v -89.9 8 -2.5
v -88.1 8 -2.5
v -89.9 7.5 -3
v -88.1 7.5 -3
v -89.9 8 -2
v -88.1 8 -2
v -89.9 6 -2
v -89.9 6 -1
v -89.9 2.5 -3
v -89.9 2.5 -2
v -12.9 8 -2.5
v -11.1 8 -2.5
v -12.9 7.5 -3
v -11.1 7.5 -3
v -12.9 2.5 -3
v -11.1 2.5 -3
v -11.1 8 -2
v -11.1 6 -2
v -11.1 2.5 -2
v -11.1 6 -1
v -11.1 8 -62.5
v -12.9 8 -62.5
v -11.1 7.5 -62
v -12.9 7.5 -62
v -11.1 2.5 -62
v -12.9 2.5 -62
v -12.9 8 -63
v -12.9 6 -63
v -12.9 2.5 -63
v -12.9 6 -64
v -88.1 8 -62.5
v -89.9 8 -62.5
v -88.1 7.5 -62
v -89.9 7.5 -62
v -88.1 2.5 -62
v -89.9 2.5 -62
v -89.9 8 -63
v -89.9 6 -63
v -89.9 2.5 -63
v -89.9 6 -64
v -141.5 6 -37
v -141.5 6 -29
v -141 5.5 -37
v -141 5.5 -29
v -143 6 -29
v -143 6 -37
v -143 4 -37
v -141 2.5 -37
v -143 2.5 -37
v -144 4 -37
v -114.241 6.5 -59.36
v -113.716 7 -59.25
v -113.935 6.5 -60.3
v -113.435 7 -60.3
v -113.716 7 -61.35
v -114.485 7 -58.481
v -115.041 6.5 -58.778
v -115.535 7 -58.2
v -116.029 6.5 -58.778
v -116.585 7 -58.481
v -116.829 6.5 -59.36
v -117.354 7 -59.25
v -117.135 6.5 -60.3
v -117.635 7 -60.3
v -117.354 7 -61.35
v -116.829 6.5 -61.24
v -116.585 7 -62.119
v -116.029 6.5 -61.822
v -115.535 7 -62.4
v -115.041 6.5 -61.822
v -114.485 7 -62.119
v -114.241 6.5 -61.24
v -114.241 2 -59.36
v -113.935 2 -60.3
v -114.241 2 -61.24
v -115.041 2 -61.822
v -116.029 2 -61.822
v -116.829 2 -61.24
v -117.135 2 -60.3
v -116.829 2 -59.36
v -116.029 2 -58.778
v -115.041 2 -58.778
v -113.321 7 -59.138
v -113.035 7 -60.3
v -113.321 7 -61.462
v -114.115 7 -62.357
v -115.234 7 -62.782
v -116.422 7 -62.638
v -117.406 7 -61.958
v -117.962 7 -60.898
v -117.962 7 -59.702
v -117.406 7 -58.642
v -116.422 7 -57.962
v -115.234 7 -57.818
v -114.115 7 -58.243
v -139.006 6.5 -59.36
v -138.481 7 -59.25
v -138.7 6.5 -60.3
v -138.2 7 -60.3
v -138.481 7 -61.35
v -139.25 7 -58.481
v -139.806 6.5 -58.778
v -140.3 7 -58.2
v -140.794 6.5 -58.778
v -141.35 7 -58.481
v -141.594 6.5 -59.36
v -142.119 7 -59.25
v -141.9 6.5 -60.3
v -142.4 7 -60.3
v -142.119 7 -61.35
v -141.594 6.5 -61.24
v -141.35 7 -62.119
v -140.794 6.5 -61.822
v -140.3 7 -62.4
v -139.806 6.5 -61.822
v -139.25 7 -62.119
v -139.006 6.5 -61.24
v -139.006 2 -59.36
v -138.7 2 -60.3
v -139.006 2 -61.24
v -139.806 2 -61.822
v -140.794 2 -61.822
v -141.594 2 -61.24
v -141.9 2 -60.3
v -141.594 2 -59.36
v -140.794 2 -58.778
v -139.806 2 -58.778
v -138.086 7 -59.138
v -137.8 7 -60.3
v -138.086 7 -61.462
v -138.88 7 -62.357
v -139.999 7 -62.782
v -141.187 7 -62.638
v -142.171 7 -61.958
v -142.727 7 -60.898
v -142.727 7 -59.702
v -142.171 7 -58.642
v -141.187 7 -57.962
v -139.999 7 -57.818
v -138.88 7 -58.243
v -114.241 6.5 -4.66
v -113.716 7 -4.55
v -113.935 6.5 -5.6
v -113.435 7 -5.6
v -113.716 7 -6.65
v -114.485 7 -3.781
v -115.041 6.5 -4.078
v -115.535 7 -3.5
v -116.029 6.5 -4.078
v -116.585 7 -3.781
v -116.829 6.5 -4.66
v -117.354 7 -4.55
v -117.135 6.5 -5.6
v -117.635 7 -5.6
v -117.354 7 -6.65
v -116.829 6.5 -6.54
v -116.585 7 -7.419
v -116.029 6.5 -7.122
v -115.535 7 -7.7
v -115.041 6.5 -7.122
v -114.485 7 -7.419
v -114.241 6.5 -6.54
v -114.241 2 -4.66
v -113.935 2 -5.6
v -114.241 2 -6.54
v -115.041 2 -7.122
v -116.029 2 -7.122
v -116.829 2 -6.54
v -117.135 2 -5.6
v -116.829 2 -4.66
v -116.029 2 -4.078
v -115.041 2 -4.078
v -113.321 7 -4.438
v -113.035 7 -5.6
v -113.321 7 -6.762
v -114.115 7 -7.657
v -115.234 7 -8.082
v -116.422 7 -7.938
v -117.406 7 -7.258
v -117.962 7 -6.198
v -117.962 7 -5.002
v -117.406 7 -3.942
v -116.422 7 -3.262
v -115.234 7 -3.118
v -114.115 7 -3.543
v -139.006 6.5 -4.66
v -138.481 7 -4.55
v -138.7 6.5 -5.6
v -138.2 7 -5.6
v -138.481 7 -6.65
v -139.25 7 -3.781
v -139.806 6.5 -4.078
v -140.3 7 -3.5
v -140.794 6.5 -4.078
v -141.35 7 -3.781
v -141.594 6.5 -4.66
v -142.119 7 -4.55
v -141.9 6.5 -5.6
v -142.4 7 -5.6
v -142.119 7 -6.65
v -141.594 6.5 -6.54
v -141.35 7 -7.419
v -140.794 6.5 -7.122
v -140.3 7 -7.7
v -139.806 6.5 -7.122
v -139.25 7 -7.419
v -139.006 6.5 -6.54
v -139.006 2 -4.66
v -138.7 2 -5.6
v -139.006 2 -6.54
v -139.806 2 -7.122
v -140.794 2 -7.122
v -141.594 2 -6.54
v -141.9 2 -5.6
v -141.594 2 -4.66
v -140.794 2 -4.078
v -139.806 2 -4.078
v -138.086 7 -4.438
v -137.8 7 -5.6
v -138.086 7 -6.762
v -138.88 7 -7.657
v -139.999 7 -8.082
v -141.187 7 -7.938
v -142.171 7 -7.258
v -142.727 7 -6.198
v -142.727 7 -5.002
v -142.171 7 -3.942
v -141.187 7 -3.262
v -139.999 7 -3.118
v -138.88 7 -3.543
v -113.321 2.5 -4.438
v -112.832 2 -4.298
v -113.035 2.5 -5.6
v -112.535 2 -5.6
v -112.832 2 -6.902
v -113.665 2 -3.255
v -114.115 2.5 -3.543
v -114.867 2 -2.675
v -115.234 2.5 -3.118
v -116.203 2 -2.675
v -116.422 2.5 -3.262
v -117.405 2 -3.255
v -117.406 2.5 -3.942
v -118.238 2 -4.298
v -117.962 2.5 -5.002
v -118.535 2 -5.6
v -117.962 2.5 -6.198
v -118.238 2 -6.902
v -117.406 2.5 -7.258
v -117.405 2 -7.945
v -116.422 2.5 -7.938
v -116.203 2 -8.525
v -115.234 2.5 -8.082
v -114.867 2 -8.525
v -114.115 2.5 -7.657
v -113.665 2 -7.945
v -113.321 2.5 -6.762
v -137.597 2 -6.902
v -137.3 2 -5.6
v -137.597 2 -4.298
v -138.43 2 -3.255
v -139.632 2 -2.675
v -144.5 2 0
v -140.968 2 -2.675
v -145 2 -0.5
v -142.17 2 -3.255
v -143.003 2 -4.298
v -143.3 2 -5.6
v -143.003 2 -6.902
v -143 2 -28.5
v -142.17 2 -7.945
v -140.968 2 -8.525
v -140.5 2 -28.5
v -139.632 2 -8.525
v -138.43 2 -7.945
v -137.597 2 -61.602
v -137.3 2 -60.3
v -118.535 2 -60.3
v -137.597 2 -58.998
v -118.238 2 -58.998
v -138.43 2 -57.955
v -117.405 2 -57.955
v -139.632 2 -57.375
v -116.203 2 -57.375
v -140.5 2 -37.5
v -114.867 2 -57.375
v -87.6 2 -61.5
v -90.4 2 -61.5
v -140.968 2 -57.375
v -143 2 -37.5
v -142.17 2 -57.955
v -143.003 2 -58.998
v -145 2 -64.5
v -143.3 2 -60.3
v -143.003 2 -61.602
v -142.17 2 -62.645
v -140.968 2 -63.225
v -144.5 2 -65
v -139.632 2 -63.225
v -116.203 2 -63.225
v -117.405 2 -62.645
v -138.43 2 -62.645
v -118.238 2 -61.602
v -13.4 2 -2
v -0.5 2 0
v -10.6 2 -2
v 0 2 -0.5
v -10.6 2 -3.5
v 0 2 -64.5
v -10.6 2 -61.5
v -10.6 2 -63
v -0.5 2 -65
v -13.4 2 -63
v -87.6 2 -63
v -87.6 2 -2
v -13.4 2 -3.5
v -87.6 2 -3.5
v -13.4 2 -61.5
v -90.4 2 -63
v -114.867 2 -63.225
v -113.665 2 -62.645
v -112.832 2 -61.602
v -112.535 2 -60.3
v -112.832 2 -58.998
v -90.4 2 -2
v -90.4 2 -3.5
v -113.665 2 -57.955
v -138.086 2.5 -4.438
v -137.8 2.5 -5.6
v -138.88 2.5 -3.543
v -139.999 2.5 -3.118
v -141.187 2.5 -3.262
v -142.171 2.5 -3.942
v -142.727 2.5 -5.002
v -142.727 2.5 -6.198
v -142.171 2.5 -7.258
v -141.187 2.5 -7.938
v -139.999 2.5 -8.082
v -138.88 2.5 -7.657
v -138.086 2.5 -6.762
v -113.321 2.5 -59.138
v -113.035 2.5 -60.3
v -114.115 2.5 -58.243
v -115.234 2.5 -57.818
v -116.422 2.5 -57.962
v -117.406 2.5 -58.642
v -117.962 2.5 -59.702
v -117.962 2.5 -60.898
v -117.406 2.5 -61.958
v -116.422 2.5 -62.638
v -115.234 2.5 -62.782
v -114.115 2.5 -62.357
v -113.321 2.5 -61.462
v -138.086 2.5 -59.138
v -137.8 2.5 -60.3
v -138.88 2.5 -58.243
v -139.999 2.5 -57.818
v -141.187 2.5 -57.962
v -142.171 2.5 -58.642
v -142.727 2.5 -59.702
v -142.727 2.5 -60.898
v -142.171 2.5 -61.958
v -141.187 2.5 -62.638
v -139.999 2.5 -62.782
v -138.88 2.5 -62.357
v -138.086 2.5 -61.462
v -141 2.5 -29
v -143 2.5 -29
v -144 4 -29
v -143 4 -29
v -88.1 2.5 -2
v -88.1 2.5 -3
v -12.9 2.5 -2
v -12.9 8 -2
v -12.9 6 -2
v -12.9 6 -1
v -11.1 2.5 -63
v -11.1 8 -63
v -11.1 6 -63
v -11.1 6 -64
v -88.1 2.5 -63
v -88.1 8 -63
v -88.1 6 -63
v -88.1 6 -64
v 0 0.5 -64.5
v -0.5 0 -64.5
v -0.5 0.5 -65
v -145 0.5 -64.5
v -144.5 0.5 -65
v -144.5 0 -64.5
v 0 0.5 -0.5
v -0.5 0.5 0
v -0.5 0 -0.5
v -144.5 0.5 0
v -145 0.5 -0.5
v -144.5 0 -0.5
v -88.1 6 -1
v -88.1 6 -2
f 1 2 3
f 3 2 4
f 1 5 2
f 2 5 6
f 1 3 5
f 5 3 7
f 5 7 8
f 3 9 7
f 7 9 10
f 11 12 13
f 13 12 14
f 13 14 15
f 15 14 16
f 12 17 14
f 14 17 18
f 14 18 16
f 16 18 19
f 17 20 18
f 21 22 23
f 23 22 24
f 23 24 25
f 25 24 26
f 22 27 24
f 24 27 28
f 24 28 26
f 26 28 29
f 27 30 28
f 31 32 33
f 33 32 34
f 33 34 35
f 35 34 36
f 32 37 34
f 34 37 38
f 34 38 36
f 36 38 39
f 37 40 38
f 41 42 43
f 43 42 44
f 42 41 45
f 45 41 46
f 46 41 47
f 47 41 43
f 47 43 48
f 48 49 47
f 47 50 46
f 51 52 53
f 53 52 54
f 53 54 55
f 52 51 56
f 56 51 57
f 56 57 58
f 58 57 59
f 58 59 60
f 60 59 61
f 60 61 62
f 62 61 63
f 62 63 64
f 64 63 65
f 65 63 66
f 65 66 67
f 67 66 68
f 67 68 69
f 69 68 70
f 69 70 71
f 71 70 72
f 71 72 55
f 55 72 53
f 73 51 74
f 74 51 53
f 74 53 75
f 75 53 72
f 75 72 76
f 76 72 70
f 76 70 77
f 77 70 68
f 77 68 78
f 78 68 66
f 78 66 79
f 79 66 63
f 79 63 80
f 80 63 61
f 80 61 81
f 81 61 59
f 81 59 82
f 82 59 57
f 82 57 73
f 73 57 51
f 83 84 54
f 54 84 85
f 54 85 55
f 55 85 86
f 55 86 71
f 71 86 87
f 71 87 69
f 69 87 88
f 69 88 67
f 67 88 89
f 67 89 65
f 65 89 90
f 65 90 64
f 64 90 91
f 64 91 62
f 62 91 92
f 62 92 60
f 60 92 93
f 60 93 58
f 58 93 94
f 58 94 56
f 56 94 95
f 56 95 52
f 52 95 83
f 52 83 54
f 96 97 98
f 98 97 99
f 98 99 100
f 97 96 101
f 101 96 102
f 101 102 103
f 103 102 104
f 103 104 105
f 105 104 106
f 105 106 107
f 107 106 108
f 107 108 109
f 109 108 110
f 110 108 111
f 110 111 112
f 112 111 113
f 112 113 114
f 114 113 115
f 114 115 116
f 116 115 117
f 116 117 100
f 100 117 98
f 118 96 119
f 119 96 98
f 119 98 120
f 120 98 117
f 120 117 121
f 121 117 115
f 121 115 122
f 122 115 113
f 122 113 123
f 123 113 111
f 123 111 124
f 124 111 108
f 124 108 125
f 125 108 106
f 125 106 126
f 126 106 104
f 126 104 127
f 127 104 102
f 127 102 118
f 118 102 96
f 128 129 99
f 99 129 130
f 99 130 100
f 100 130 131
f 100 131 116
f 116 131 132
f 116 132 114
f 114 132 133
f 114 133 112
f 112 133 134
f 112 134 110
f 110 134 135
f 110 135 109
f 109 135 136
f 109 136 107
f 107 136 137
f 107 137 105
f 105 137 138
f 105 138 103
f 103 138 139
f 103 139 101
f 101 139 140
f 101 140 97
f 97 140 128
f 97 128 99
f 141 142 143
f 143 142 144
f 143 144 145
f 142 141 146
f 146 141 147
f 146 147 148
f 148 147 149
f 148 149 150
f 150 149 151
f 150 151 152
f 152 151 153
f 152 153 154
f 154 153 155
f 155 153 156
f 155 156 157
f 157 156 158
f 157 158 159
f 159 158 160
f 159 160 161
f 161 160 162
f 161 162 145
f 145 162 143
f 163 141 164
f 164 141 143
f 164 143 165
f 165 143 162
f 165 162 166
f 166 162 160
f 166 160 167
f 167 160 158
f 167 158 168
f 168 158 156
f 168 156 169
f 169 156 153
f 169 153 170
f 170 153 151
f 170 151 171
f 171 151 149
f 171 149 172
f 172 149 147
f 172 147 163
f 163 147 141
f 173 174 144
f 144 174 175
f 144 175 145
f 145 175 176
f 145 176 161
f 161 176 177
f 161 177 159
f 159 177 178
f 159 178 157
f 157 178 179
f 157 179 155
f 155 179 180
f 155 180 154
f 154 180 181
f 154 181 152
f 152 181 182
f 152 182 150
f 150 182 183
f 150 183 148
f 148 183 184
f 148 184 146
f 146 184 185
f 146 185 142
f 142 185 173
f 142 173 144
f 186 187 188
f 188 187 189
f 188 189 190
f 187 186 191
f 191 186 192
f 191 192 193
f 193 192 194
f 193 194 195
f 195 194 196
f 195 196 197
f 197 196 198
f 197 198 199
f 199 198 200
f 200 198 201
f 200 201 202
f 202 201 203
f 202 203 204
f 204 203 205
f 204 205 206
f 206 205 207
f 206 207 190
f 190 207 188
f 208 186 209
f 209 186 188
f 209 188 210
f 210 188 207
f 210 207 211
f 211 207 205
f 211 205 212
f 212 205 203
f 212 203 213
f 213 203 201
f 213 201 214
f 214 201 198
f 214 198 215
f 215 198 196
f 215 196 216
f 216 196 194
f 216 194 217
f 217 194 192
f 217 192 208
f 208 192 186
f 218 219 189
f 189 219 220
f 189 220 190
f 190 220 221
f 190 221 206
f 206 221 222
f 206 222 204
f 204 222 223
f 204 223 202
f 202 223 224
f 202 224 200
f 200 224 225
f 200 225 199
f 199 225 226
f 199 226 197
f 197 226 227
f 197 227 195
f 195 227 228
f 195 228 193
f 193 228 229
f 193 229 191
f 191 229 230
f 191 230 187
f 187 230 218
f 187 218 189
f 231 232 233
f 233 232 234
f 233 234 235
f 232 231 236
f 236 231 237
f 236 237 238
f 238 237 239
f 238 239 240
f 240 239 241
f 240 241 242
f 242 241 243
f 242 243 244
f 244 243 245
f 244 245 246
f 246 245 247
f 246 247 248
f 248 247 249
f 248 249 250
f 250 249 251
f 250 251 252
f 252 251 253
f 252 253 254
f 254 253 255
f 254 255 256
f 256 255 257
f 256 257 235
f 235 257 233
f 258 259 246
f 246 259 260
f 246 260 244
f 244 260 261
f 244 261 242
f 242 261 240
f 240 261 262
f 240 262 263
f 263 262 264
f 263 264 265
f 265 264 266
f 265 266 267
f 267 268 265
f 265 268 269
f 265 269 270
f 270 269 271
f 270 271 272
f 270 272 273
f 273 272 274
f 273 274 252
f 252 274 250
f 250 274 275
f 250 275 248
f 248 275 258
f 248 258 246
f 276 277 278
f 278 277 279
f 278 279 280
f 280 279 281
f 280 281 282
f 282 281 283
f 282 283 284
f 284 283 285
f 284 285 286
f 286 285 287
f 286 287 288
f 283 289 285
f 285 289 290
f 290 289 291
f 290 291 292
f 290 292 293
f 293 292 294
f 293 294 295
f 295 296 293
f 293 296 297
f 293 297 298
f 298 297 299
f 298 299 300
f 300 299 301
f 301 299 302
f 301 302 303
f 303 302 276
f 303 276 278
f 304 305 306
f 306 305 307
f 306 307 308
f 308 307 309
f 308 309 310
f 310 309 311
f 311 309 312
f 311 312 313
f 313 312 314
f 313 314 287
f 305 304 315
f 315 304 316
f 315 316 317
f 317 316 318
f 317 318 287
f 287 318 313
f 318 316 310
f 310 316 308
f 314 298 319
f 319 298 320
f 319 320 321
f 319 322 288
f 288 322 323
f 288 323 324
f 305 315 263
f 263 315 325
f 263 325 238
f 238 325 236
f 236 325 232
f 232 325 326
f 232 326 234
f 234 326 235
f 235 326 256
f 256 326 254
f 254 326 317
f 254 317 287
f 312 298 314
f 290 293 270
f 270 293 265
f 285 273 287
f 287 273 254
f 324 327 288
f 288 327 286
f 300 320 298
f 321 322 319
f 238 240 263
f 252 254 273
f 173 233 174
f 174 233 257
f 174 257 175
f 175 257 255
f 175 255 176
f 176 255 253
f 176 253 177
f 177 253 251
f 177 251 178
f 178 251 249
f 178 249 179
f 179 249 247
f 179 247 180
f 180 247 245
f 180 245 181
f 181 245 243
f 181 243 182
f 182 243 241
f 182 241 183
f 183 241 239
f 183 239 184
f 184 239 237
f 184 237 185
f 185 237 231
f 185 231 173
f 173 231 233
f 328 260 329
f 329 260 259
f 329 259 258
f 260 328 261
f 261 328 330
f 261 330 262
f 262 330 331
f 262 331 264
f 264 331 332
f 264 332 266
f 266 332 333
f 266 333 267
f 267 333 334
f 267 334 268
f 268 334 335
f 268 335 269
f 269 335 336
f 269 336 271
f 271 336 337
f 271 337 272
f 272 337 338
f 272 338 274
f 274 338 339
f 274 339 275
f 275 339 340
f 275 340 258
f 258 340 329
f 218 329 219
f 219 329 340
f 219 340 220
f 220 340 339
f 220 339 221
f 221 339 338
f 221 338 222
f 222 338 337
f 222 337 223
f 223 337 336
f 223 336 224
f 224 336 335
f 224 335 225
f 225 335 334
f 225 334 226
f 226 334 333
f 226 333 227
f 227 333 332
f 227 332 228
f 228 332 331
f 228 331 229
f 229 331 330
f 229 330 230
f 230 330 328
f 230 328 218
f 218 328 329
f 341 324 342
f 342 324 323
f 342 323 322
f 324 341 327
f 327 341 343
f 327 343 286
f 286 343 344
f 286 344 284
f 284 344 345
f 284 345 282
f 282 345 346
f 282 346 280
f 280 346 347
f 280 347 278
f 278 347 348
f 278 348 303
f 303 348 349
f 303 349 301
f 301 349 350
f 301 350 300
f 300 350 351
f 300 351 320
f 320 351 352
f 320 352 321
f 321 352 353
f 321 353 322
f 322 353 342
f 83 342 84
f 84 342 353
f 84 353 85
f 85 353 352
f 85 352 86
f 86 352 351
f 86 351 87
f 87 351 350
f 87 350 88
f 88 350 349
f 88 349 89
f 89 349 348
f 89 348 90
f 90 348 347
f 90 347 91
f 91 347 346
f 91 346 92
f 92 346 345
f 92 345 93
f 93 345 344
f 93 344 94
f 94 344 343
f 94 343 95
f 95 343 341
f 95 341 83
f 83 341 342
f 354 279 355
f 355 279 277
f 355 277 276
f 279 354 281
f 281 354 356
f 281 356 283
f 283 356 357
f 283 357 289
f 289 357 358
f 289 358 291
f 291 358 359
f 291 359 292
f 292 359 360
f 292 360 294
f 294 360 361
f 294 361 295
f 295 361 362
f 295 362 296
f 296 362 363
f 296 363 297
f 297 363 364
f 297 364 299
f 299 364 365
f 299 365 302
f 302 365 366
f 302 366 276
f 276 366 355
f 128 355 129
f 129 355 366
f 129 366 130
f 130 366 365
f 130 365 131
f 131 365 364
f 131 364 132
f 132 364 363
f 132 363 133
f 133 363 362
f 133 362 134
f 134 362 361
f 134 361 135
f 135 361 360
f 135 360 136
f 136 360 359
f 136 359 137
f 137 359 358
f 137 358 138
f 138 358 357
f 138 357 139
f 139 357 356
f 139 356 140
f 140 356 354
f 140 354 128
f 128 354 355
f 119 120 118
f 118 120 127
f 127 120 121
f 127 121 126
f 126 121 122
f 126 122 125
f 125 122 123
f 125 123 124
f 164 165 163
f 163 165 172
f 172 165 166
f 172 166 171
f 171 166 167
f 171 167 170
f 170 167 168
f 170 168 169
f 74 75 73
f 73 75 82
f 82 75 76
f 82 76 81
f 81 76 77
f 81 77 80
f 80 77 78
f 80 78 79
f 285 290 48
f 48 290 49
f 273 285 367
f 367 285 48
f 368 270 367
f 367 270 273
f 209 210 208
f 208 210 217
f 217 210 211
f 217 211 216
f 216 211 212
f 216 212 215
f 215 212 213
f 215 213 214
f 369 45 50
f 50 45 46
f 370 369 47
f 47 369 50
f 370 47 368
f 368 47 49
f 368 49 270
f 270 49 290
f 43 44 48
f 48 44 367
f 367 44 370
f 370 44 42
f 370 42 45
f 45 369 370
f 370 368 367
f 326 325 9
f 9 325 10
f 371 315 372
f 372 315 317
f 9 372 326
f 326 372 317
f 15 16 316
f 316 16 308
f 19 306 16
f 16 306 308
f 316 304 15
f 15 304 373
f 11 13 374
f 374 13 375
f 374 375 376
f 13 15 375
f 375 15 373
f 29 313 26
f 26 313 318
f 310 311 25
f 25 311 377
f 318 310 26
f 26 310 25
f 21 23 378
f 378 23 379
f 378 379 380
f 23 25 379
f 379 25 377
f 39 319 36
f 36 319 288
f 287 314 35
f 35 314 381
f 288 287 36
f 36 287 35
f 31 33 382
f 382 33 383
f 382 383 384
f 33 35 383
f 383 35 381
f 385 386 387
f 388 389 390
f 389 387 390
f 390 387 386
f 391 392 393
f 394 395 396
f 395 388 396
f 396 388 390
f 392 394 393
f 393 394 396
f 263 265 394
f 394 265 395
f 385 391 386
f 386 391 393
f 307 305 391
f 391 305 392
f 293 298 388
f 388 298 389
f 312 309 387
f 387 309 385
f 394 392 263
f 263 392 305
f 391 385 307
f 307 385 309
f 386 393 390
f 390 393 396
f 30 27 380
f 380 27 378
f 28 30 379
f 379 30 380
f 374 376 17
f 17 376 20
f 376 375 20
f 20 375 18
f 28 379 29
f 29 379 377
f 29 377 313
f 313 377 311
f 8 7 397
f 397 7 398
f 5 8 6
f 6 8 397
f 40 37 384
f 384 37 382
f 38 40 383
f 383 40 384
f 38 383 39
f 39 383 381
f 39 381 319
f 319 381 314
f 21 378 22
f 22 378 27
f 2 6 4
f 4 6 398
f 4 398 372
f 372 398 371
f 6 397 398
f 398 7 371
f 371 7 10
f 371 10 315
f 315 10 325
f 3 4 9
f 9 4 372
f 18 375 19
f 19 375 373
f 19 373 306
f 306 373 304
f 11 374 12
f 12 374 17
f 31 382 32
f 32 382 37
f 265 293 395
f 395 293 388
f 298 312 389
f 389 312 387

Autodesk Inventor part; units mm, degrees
ref_plane "YZ Plane" through (0, 0, 0) normal (1, 0, 0) x (0, 1, 0)
ref_plane "XZ Plane" through (0, 0, 0) normal (0, 1, 0) x (-1, 0, 0)
ref_plane "XY Plane" through (0, 0, 0) normal (0, 0, 1) x (1, 0, 0)
sketch "草图1" plane through (0, 0, 0) normal (0, 1, 0) x (-1, 0, 0)
  line L0 (0, 0) -> (145, 0)
  line L1 (145, 0) -> (145, -65)
  line L2 (145, -65) -> (0, -65)
  line L3 (0, -65) -> (0, 0)
  dimension "d0" = 145
  dimension "d1" = 65
extrude "拉伸1" add sketch "草图1" along normal blind 2
sketch "草图2" plane through (0, 2, 0) normal (0, 1, 0) x (1, 0, 0)
  line L0 (-145, 0) -> (0, 0) projected
  line L1 (0, 0) -> (0, 2)
  line L2 (0, 0) -> (0, 65) projected
  line L3 (0, 2) -> (-12, 2)
  line L4 (-12, 2) -> (-12, 63)
  line L5 (-12, 2) -> (-89, 2)
  line L6 (-89, 2) -> (-89, 63)
  line L7 (-12, 2) -> (-12.9, 2)
  line L8 (-12.9, 2) -> (-12.9, 3)
  line L9 (-12.9, 3) -> (-11.1, 3)
  line L10 (-11.1, 3) -> (-11.1, 2)
  line L11 (-12, 63) -> (-12.9, 63)
  line L12 (-12.9, 63) -> (-12.9, 62)
  line L13 (-12.9, 62) -> (-11.1, 62)
  line L14 (-11.1, 62) -> (-11.1, 63)
  line L15 (-11.1, 63) -> (-12, 63)
  line L16 (-89, 63) -> (-88.1, 63)
  line L17 (-88.1, 63) -> (-88.1, 62)
  line L18 (-88.1, 62) -> (-89.9, 62)
  line L19 (-89.9, 62) -> (-89.9, 63)
  line L20 (-89.9, 63) -> (-88.1, 63)
  line L21 (-89, 2) -> (-89.9, 2)
  line L22 (-89.9, 2) -> (-89.9, 3)
  line L23 (-89.9, 3) -> (-88.1, 3)
  line L24 (-88.1, 3) -> (-88.1, 2)
  dimension "d4" = 2
  dimension "d5" = 12
  dimension "d6" = 61
  dimension "d7" = 77
  dimension "d8" = 0.9
  dimension "d9" = 1
  dimension "d10" = 1.8
  dimension "d11" = 1
  dimension "d12" = 0.9
  dimension "d13" = 1.8
extrude "拉伸2" add sketch "草图2" along normal blind 6
sketch "草图3" plane through (-89.9, 2, -3) normal (-1, 0, 0) x (0, 0, 1)
  line L0 (1, 0) -> (1, 6) projected
  line L1 (1, 6) -> (1, 4)
  line L2 (1, 4) -> (2, 4)
  line L3 (2, 4) -> (1, 6)
  line L4 (-60, 6) -> (-59, 6) projected
  line L5 (-60, 6) -> (-60, 4)
  line L6 (-60, 0) -> (-60, 6) projected
  line L7 (-60, 4) -> (-61, 4)
  line L8 (-61, 4) -> (-60, 6)
  point P0 (3, -2)
  dimension "d16" = 2
  dimension "d17" = 1
  dimension "d18" = 1
extrude "拉伸3" add sketch "草图3" against normal blind 1.8
sketch "草图4" plane through (-12.9, 2, -3) normal (-1, 0, 0) x (0, 0, 1)
  line L0 (1, 6) -> (2, 4) projected
  line L1 (2, 4) -> (1, 4) projected
  line L2 (1, 6) -> (2, 4)
  line L3 (2, 4) -> (1, 4)
  line L4 (1, 0) -> (1, 6) projected
  line L5 (1, 4) -> (1, 6)
  line L6 (-59, 6) -> (-60, 6) projected
  line L7 (-60, 6) -> (-60, 4)
  line L8 (-60, 0) -> (-60, 6) projected
  line L9 (-61, 4) -> (-60, 4) projected
  line L10 (-60, 6) -> (-61, 4) projected
  line L11 (-61, 4) -> (-60, 6)
  line L12 (-60, 0) -> (-60, 4) projected
  line L13 (-60, 6) -> (-60, 4)
  line L14 (-60, 4) -> (-61, 4)
  line L15 (1, 6) -> (0, 6) projected
  line L16 (1, 6) -> (1, 4)
  line L17 (1, 4) -> (2, 4)
  point P0 (3, -2)
extrude "拉伸4" add sketch "草图4" against normal blind 1.8
chamfer "倒角1" distance 0.5 angle 45 20 edges at (-72.5, 0, 0) (-145, 1, 0) (-145, 0, -32.5) (0, 1, 0) (-145, 1, -65) (-72.5, 0, -65) (0, 1, -65) (0, 0, -32.5) (-89, 2, -62) (-12, 2, -62) (-11.1, 2, -62.5) (-88.1, 2, -62.5) (-11.1, 2, -2.5) (-88.1, 2, -2.5) (-12.9, 2, -62.5) (-89.9, 2, -62.5) (-89.9, 2, -2.5) (-12.9, 2, -2.5) (-12, 2, -3) (-89, 2, -3)
sketch "草图5" plane through (0, 2, 0) normal (0, 1, 0) x (1, 0, 0)
  line L0 (-145, 64.5) -> (-145, 0.5) projected
  line L1 (-145, 64.5) -> (-143, 64.5)
  line L2 (-0.5, 64.5) -> (-144.5, 64.5) projected
  line L3 (-0.5, 65) -> (-144.5, 65) projected
  line L4 (-143, 65) -> (-115, 65)
  line L5 (-143, 65) -> (-143, 37)
  line L6 (-143, 37) -> (-143, 29)
  line L7 (-143, 37) -> (-141, 37)
  line L8 (-141, 37) -> (-141, 29)
  line L9 (-141, 29) -> (-143, 29)
  point P0 (0, 0)
  dimension "d26" = 2
  dimension "d27" = 28
  dimension "d28" = 28
  dimension "d29" = 8
  dimension "d30" = 2
extrude "拉伸5" add sketch "草图5" along normal blind 4
sketch "草图6" plane through (-143, 2, -29) normal (0, 0, 1) x (1, 0, 0)
  line L0 (0, 4) -> (2, 4) projected
  line L1 (0, 4) -> (0, 2)
  line L2 (0, 0) -> (0, 4) projected
  line L3 (0, 2) -> (-1, 2)
  line L4 (-1, 2) -> (0, 4)
  point P0 (143, -2)
  dimension "d33" = 2
  dimension "d34" = 1
extrude "拉伸6" add sketch "草图6" against normal blind 8
chamfer "倒角2" distance 0.5 angle 45 3 edges at (-141, 2, -33) (-142, 2, -29) (-142, 2, -37)
sketch "草图7" plane through (0, 2, 0) normal (0, 1, 0) x (1, 0, 0)
  line L0 (-144.5, 65) -> (-145, 64.5) projected
  line L1 (-145, 64.5) -> (-140.3, 64.5)
  line L2 (-0.5, 64.5) -> (-144.5, 64.5) projected
  line L3 (-140.3, 64.5) -> (-140.3, 65)
  line L4 (-0.5, 65) -> (-144.5, 65) projected
  line L5 (-140.3, 65) -> (-140.3, 60.3)
  line L6 (-140.3, 60.3) -> (-140.3, 5.6)
  line L7 (-140.3, 5.6) -> (-115.535, 5.6)
  line L8 (-115.535, 5.6) -> (-115.535, 60.3)
  line L9 (-115.535, 60.3) -> (-140.3, 60.3)
  circle A0 centre (-140.3, 60.3) radius 1.6
  circle A1 centre (-140.3, 60.3) radius 2.5
  circle A2 centre (-115.535, 60.3) radius 1.6
  circle A3 centre (-115.535, 60.3) radius 2.5
  circle A4 centre (-115.535, 5.6) radius 1.6
  circle A5 centre (-115.535, 5.6) radius 2.5
  circle A6 centre (-140.3, 5.6) radius 1.6
  circle A7 centre (-140.3, 5.6) radius 2.5
  point P0 (0, 0)
  dimension "d40" = 4.7
  dimension "d41" = 4.7
  dimension "d44" = 54.7
  dimension "d45" = 24.765
  dimension "d46" = 3.2
  dimension "d47" = 5
  dimension "d48" = 3.2
  dimension "d49" = 5
  dimension "d50" = 3.2
  dimension "d51" = 5
  dimension "d52" = 3.2
  dimension "d53" = 5
extrude "拉伸7" add sketch "草图7" along normal blind 5 contours A1 L9 A0 L5 | L5 A0 L6 A1 | A1 L6 A0 L9 | A3 L8 A2 L9 | L9 A2 L8 A3 | A7 L7 A6 L6 | L6 A6 L7 A7 | A5 L7 A4 L8 | L8 A4 L7 A5
chamfer "倒角3" distance 0.5 angle 45 13 edges at (-142.8, 2, -60.3) (-118.035, 2, -60.3) (-142.8, 2, -5.6) (-118.035, 2, -5.6) (-141.9, 7, -5.6) (-117.135, 7, -5.6) (-141.9, 7, -60.3) (-117.135, 7, -60.3) (-141, 6, -33) (-89, 8, -62) (-12, 8, -62) (-12, 8, -3) (-89, 8, -3)
properties part number "BOT" material "酚醛树脂"
